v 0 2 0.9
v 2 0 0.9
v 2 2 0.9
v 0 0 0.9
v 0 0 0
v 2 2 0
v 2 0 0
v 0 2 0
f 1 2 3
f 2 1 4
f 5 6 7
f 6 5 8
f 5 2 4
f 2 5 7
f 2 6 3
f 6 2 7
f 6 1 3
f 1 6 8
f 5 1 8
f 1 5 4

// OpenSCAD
/* Warning, this is a very basic generator with a lot of approximation 
input data : [VDFN, JSA, 2x2x0.9mm, 8, , A, C04-01017A]
generated by com.zoubworld.electronics.cad.model3d.Basic
Date : Sun Feb 15 10:50:49 CET 2026
*/

//body
color("black")
translate([0,0,0])
cube([2.0,2.0,0.9], center=false);
